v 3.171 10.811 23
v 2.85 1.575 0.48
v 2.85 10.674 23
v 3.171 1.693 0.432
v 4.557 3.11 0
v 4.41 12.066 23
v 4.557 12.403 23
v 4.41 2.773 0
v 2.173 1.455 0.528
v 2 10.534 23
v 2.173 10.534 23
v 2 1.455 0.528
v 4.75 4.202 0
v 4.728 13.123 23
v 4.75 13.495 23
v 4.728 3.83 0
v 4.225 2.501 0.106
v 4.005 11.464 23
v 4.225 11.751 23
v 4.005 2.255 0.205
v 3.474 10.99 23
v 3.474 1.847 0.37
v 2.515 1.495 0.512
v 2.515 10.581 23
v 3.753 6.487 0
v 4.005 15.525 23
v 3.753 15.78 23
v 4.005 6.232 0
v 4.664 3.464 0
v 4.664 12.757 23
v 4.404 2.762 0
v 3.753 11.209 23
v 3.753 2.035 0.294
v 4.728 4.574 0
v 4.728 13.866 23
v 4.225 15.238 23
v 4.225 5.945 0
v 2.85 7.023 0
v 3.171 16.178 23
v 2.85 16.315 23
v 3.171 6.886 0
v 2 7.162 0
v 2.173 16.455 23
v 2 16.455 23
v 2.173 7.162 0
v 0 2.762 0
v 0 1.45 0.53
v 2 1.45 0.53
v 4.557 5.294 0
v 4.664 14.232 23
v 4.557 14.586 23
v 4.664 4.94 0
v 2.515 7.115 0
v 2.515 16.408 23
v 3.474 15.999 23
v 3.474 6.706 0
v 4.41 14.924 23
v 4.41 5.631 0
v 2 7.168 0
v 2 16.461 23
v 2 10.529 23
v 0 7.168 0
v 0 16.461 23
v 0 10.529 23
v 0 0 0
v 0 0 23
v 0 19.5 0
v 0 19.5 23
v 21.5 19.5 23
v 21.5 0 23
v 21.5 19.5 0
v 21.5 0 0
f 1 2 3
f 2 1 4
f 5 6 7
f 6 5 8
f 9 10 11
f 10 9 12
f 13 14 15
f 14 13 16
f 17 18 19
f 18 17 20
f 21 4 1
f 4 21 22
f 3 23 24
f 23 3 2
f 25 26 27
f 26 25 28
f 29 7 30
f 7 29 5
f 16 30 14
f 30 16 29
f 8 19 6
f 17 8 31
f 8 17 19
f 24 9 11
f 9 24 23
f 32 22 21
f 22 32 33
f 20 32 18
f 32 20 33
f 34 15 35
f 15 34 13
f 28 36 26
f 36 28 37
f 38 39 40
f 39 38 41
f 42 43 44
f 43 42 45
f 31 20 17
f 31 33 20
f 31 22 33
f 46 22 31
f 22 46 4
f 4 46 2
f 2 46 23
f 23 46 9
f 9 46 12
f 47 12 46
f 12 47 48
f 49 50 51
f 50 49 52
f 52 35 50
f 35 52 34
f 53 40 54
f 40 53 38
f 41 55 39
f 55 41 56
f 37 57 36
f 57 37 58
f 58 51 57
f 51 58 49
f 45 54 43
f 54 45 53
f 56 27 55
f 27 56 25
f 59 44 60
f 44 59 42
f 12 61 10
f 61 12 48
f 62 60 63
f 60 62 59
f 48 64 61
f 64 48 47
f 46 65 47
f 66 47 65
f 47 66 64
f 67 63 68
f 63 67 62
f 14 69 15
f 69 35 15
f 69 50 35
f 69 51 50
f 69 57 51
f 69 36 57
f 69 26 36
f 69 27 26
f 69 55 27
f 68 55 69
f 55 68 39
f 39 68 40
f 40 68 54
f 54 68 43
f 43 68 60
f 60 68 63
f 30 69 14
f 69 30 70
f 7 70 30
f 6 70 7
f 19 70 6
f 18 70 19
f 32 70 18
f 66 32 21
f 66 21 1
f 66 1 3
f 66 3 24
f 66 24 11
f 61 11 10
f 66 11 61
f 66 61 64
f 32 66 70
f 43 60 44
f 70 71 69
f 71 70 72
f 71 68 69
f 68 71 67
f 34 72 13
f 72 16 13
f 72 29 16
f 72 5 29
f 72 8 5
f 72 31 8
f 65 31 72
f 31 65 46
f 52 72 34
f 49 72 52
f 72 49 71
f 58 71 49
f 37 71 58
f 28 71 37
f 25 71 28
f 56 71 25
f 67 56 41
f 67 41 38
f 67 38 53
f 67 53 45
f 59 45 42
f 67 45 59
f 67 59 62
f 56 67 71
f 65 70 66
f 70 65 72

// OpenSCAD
// file: ../library_deh/deh_shapes.scad
/* **** deh_shapes.scad *****
   * Library of useful shapes
   * 20170512
*/


/*  ***** tubedeh *****
d1 = outside diameter
d2 = inside diameter
ht = height
reference is center of tube, bottom
*/
module tubedeh(d1,d2,ht)
{
   difference()
   {
     cylinder(d = d1, h = ht, center = false);
     cylinder(d = d2, h = ht + .001, center = false);
   }
}
/* ***** rounded_bar *****
 * rectangular bar with rounded end
bar with one end rounded
rounded_bar(d, l, h)
d = diameter of rounded end, and width of bar
l = length of bar from center of rounded end to end
h = thickness (height) of bar
reference is center of rounded end, bottom
*/
module rounded_bar(d, l, h)
{
    // Rounded end
    cylinder(d = d, h = h, center = false);
    // Bar
    translate([0, -d/2, 0])
       cube([l, d, h],false);
}
/* ***** eyebar *****
 * rounded bar with hole in rounded end
 * module eye_bar(d1, d2, len, ht)
d1 = outside diameter of rounded end, and width of bar
d2 = diameter of hole in end of bar
*/
module eye_bar(d1, d2, len, ht)
{
   difference()
   {   
      rounded_bar(d1,len,ht);
      cylinder(d = d2, h = ht + .001, center = false);
   }
}
/* ***** rounded_rectangle ******
rounded_rectangle(l,w,h,rad);
l = length (x direction)
w = width (y direction)
h = thickness (z direction)
rad = radius of corners
reference = center of rectangle x,y, bottom
*/
module rounded_rectangle(l,w,h,rad)
{
  translate([-(l-rad)/2,-(w-rad)/2,0])
  {
    // Four rounded edges
    translate([0,0,0])
      rounded_bar(rad*2,l-rad,h);
    translate([l-rad,0,0])
      rotate([0,0,90])
      rounded_bar(rad*2,w-rad,h);
    translate([l-rad,w-rad,0])
      rotate([0,0,180])
      rounded_bar(rad*2,l-rad,h);
    translate([0,w-rad,0])
      rotate([0,0,-90])
      rounded_bar(rad*2,w-rad,h);
    // Fill in center
    translate([0,0,0])
      cube([l-rad + .01,w-rad + .01,h],false);
  }
}

/* ***** rounded rim *****
module rounded_rim(l,w,h,rad,tk);
l = length (inside, x direction)
w = width (inside, y direction)
h = thickness (z direction)
rad = radius of corners
tk = thickness of rim wall
*/
module rounded_rim(l,w,h,rad,tk)
{
  difference()
  {
    rounded_rectangle(l+2*tk,w+2*tk,h,rad);
    rounded_rectangle(l, w, h, rad);
  }
}

/* ***** wedge *****
l = length
w = width
h = height/thickness
*/
 module wedge(l, w, h)
 {
   polyhedron(
      points=[[0,0,0], [l,0,0], [l,w,0], [0,w,0], [0,w,h], [l,w,h]],
       faces=[[0,1,2,3],[5,4,3,2],[0,4,5,1],[0,3,4],[5,2,1]] );
 }
/* ***** rounded_triangle *****
 * l1 = side 1
 * l2 = side 2
 * l3 = side 3
 * h  = height/thickness
 * rad = radius of rounded corners
 */
module rounded_triangle(l1,l2,l3,h,rad)
{
  // Compute rotation angles
  al3 = acos((l1*l1 + l2*l2 - l3*l3)/(2 * l1 * l2));
  al1 = acos((l2*l2 + l3*l3 - l1*l1)/(2 * l2 * l3));
  al2 = acos((l3*l3 + l1*l1 - l2*l2)/(2 * l3 * l1));
  // Setup bars for edges
  translate([0,0,0])
    rotate([0,0,0])
      rounded_bar(rad,l3,h);
  translate([l3,0,0])
    rotate([0,0,180-al2])
      rounded_bar(rad,l1,h);
  rotate([0,0,al1])
    translate([l2,0,0])
      rotate([0,0,180])
        rounded_bar(rad,l2,h);
  // Fill in center
    triangle(l1,l2,l3,h);
}
/* ***** triangle *****
 * l1 = side 1
 * l2 = side 2
 * l3 = side 3
 * h  = height/thickness
 */
module triangle(l1,l2,l3,h)
{
  // Compute rotation angle
  al1 = acos((l2*l2 + l3*l3 - l1*l1)/(2 * l2 * l3));
  
  linear_extrude(height = h)
  polygon(points = [[0,0],[l3,0],[l2*cos(al1),l2*sin(al1)]]);
}
/* ***** chamfered hole *****
 * Punch hole with chamfer on one end
 * d1 = main hole diameter
 * d2 = hole diameter at chamfered end
 * ht1 = height of whole hole
 * ht2 = depth of  chamfer
*/
module chamfered_hole(d1,d2,ht1,ht2)
{
   rotate_extrude(convexity = 10)
     polygon(points = [[0,0],[d1/2,0],[d1/2,ht1-ht2],[d2/2,ht1],[0,ht1]]);

}

/* ***** fillet *****
 * r = radius of fillet
 * l = length of fillet
 fillet (r,l);
*/
module fillet(r,l)
{
   difference()
   {
     union()
     {
       cube([2*r,2*r,l]);
     }
     union()
     {
       translate ([r,r,0])
           cylinder(d = 2*r + 0.1, h = l, center = false);
       translate([r,0,0])
           cube([r,2*r,l],center = false);
       translate([0,r,0])
           cube([2*r,r,l],center = false);
     }
   }
}
/* ***** circular chamfer *****
 * d = outer diameter
 * rad = chamfer radius
 * circular_chamfer(d, rad);
*/
module circular_chamfer(d, rad)
{
  ofs = (d/2 - rad);
  rotate_extrude()
  translate([ofs,0])
   difference()
   {
     union()
     {
       square(size = [rad, rad]);
     }
     union()
     {
       translate ([0,rad ])
           circle(d = 2*rad + 0.1);
     }
   }
}
module circular_inner_chamfer(d, rad)
{
  circular_chamfer(d, rad);
} 

/* ***** circular chamfer *****
 * d = inner diameter
 * rad = chamfer radius
 * circular_chamfer(d, rad);
*/
module circular_outer_chamfer(d, rad)
{
  ofs = (d/2 - rad);
  rotate_extrude()
  translate([ofs,0])
   difference()
   {
     union()
     {
       square(size = [rad, rad]);
     }
     union()
     {
       translate ([rad,rad ])
           circle(d = 2*rad + 0.1);
     }
   }
}
// main file
/* cableplug.scad
   POD #3 plug for load-cell cable strain relief
   04/08/2017
*/

$fn = 50;

include <../library_deh/deh_shapes.scad>

/* Plug goes in bottom of pod2_tronics.scad */
pg_wid = 21.5;	
pg_len = 19.5;
pg_depth = 23;

module plug()
{
  cube([pg_wid, pg_len, pg_depth], center = false);
}

/* Cutout in plug for capturing cable */
cc_dia = 5.5;	// Cable diameter

module cable_cutout()
{
  translate([2,4,-.5])
    rotate([-22,0,0])
      rotate([0,0,180])
        rounded_bar(cc_dia,17,40);
  

}

module total()
{
   difference()
   {
      plug();

      cable_cutout();

   }

  
}


total();
